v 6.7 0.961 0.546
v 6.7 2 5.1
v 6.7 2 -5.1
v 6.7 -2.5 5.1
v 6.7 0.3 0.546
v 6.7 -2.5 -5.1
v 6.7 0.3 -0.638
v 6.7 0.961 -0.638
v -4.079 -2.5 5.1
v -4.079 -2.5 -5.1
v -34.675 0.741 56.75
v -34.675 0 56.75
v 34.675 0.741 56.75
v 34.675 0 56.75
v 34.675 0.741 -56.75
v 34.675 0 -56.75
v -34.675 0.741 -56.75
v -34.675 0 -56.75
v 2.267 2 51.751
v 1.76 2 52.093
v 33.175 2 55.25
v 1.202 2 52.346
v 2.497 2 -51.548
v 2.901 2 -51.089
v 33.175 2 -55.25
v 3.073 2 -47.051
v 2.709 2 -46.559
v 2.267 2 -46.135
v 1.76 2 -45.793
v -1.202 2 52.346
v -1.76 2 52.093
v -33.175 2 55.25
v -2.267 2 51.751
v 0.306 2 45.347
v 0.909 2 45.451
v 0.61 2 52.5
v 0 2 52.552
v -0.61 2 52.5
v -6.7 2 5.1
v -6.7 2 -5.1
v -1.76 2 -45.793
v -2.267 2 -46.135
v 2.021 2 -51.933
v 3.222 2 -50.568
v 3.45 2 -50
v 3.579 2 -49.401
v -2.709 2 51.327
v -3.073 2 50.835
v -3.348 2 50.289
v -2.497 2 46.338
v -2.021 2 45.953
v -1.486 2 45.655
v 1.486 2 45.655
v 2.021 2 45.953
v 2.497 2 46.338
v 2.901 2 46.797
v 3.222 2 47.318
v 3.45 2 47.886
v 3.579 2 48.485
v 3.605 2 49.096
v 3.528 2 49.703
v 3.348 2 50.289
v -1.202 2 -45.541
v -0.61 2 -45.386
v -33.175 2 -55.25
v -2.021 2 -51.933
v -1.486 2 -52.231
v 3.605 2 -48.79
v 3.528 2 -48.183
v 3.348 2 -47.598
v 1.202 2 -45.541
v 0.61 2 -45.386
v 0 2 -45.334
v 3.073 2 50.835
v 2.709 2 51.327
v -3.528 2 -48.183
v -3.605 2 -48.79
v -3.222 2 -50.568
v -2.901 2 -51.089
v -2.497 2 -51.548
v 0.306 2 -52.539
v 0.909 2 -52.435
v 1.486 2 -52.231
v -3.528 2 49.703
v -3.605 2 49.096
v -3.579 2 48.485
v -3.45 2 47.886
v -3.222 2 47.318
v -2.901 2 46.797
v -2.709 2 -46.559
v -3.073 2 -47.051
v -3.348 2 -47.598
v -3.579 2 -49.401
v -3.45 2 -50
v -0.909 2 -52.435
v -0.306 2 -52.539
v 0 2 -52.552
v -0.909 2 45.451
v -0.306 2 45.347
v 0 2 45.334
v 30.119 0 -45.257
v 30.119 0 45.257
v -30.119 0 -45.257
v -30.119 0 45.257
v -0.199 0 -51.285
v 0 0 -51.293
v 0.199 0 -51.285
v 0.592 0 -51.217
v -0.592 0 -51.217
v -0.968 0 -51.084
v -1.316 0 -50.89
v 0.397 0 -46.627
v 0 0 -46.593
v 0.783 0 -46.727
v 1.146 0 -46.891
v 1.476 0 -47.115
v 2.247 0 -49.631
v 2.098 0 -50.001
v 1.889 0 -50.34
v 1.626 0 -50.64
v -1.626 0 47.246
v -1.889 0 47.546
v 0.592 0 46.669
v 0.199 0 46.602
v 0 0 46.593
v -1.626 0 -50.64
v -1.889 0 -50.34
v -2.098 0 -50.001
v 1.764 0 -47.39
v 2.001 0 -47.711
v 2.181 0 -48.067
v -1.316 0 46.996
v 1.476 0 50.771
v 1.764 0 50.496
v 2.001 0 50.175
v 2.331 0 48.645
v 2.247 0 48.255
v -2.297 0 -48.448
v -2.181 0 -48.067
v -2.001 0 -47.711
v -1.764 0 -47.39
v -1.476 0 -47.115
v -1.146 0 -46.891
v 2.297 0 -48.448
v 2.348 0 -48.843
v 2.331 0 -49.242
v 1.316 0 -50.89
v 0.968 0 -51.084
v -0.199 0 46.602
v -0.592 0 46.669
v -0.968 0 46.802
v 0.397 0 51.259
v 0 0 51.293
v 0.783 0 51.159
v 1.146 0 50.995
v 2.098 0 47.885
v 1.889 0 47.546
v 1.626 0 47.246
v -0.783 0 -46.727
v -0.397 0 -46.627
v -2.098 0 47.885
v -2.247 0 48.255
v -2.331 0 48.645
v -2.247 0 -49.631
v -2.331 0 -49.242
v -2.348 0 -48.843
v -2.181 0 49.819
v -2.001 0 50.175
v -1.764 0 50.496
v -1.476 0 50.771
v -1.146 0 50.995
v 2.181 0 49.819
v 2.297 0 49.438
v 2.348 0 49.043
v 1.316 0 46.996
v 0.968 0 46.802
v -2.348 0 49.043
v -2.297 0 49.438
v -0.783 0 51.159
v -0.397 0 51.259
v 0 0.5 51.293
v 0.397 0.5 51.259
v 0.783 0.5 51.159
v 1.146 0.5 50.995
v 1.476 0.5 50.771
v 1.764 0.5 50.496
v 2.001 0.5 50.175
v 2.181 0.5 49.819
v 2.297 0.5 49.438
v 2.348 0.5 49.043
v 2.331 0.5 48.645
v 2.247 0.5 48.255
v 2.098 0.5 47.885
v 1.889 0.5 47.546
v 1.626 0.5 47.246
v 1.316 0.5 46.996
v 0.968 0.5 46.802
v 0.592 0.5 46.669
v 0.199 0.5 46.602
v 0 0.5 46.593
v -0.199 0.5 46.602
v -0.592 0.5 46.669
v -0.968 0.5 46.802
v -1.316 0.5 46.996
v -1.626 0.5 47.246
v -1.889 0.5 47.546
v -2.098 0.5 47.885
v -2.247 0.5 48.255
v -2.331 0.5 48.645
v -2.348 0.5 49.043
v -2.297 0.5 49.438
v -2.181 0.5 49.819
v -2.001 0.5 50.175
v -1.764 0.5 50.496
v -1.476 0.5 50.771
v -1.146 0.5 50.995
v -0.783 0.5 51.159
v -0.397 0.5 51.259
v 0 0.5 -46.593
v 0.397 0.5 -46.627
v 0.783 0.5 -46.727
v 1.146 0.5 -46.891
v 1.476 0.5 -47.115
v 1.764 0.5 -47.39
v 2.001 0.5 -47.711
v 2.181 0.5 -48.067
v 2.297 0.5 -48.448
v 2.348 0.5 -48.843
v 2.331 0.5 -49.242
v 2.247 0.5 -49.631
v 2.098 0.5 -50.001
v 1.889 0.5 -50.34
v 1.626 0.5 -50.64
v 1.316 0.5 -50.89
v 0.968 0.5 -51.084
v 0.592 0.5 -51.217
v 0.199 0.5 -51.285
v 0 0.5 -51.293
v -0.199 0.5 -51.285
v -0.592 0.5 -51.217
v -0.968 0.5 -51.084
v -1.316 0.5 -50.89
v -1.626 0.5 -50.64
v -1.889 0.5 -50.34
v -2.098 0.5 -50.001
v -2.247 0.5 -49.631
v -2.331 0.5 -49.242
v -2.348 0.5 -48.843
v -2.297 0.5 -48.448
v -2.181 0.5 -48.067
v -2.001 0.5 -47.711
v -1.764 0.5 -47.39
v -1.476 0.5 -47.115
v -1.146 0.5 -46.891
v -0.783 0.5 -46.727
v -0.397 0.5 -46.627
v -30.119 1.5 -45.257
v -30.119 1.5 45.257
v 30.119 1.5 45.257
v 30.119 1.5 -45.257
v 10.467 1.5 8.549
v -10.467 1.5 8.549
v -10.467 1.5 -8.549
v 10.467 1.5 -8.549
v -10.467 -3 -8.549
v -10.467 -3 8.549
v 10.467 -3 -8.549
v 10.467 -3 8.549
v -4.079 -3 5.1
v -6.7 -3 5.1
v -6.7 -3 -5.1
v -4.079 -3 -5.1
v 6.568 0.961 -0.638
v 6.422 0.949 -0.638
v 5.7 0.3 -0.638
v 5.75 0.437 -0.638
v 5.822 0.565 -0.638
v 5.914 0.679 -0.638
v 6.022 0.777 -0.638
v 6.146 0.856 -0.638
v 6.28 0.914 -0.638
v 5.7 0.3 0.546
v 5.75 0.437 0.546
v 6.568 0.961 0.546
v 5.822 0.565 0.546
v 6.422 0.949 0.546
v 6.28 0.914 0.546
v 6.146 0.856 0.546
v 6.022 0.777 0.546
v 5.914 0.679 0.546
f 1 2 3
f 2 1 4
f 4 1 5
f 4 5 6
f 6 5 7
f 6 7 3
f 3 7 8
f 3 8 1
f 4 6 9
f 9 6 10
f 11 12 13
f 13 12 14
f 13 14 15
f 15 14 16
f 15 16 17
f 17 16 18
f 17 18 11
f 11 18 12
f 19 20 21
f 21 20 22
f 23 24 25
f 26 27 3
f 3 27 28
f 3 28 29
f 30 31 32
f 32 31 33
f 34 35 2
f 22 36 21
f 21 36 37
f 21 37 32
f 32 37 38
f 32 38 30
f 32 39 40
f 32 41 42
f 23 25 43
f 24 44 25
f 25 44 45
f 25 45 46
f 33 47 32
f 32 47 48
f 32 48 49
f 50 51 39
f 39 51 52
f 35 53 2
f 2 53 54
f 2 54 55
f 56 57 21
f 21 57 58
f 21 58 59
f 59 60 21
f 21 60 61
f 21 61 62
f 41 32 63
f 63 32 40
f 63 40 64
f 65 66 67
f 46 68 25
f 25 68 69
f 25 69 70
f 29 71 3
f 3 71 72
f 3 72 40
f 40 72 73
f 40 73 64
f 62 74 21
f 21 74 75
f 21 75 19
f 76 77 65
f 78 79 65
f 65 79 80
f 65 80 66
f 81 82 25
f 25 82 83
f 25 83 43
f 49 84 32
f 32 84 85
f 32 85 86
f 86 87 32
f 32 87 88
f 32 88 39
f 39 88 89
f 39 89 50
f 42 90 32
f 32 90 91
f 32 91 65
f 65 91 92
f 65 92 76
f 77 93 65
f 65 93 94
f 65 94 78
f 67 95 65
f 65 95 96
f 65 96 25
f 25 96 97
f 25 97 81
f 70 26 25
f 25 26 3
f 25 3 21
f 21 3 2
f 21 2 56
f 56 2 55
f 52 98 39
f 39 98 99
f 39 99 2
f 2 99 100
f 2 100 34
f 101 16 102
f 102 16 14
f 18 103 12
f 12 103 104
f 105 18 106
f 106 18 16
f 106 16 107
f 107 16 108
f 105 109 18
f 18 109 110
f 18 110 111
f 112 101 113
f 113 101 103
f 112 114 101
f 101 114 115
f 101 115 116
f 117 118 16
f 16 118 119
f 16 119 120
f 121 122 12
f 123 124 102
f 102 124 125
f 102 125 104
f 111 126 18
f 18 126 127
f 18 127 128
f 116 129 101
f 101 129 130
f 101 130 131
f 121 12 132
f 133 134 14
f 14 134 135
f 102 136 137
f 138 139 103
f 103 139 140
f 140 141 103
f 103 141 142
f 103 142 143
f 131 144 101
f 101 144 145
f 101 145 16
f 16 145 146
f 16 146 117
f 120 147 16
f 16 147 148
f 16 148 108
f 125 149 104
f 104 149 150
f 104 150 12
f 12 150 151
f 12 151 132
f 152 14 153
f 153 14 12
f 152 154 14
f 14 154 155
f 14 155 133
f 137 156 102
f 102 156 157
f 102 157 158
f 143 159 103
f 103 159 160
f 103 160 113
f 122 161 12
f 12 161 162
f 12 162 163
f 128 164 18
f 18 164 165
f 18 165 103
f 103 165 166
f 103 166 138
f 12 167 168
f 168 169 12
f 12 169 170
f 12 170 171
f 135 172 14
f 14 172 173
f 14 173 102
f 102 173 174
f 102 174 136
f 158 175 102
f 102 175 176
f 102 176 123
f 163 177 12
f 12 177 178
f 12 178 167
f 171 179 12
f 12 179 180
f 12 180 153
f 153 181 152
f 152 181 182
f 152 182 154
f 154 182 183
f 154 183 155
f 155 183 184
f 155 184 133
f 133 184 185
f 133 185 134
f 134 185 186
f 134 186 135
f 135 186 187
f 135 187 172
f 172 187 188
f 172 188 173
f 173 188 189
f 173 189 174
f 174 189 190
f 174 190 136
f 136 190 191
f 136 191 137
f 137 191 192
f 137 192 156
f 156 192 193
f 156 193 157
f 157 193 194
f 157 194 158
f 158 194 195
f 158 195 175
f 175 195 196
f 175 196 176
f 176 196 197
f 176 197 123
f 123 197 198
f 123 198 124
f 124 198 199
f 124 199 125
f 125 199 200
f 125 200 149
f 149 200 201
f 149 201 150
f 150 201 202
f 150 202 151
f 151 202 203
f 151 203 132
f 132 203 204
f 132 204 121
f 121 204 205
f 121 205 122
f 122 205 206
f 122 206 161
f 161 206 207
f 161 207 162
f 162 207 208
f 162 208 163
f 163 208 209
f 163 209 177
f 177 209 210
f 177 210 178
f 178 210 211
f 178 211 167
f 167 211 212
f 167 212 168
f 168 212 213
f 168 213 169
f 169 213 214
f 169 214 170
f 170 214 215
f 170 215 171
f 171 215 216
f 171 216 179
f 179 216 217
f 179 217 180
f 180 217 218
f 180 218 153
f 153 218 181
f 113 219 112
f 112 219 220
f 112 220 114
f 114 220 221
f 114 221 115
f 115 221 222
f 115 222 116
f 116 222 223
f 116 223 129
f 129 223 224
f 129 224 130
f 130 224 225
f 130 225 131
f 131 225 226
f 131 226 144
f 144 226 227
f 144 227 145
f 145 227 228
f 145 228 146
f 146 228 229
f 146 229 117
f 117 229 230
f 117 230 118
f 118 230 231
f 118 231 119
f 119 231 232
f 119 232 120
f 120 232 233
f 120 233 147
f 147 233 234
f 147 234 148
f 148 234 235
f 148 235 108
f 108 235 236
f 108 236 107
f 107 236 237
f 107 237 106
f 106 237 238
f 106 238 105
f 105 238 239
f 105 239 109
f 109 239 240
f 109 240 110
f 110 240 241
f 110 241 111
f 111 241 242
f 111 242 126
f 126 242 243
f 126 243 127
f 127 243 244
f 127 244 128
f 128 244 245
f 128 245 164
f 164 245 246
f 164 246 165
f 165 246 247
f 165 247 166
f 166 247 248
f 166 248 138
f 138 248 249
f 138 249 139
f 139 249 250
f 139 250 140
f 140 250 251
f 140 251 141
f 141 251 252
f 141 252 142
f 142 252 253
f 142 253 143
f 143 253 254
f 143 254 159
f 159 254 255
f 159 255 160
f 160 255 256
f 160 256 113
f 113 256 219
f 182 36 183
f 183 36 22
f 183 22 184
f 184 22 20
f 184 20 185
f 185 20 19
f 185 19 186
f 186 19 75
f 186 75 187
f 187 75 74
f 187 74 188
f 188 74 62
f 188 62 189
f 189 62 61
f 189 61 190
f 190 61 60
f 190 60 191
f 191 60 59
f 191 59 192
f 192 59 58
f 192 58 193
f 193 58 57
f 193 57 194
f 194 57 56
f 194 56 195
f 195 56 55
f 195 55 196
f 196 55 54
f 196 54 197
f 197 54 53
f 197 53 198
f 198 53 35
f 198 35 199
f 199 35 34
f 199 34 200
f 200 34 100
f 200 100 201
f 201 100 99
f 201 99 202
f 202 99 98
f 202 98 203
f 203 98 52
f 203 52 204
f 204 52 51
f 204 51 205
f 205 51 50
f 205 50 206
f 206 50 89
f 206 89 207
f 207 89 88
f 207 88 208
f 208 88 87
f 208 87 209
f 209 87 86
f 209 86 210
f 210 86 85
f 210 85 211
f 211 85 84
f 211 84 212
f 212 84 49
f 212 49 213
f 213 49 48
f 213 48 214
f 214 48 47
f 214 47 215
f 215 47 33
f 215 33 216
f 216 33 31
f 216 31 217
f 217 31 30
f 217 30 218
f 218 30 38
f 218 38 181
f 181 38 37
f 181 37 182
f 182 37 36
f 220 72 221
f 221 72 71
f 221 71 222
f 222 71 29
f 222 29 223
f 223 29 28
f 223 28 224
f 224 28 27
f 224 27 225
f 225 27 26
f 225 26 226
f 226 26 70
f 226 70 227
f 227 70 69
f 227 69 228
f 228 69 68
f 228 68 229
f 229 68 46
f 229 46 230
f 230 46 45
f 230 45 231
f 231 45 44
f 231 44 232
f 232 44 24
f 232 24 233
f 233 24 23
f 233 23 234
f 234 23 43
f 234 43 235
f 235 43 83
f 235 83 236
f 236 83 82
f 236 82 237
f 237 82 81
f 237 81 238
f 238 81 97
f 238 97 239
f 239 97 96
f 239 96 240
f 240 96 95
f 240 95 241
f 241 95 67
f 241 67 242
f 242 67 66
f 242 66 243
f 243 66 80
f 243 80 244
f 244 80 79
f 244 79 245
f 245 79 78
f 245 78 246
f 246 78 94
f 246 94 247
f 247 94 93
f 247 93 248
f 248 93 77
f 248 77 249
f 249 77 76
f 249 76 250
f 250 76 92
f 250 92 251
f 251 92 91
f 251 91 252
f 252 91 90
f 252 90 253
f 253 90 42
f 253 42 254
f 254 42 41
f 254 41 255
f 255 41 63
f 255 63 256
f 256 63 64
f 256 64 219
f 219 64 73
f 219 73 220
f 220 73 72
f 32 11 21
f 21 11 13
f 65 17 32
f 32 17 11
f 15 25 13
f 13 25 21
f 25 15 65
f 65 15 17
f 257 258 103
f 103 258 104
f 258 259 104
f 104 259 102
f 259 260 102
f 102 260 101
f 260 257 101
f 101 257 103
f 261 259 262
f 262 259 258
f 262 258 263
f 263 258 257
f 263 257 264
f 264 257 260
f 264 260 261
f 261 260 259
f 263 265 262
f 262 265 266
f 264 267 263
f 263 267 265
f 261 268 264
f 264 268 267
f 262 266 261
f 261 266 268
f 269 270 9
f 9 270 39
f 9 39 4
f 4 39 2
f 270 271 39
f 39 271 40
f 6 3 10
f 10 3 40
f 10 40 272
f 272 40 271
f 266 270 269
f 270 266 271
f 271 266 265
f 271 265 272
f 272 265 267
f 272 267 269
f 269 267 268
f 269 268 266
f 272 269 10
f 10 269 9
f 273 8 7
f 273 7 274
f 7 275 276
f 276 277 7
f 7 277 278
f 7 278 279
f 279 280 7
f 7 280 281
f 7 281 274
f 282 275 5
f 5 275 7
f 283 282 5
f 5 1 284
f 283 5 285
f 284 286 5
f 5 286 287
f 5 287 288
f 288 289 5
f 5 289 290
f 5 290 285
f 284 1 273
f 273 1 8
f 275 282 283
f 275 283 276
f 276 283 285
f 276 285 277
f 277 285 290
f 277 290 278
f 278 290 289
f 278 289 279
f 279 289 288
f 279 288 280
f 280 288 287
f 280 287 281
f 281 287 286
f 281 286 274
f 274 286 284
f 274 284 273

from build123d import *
from OCP.BRepFilletAPI import BRepFilletAPI_MakeChamfer

# Parameters (mm, degrees)
SKETCH1_W            = 69.35
SKETCH1_H            = 113.5
BOSS_EXTRUDE5_DEPTH  = 2
SKETCH2_R            = 2.35
CUT_EXTRUDE3_DEPTH   = 2.5
FACE_CHAMFER_SIZE    = 1.5
FACE_CHAMFER_SIZE2   = 1.258649447
SKETCH4_W            = 60.238416088
SKETCH4_H            = 90.514495008
CUT_EXTRUDE6_DEPTH   = 1.5
SKETCH5_W            = 20.93325514
SKETCH5_H            = 17.0989254
SKETCH5_W_2          = 13.4
SKETCH5_H_2          = 10.2
BOSS_EXTRUDE7_DEPTH  = 4.5
SKETCH6_W            = 13.4
SKETCH6_H            = 10.2
CUT_EXTRUDE7_DEPTH   = 4.1
SKETCH7_W            = 20.93325514
SKETCH7_H            = 17.0989254
BOSS_EXTRUDE8_DEPTH  = 0.5
SKETCH8_W            = 2.621357244
SKETCH8_H            = 10.2
CUT_EXTRUDE8_DEPTH   = 0.5
SKETCH10_W           = 1.18316995
SKETCH10_H           = 0.660821766
BOSS_EXTRUDE11_DEPTH = 1
FILLET1_R            = 0.9


with BuildPart() as part:
    # Sketch1 → Boss-Extrude5 (new body)
    with BuildSketch(Plane(origin=(0, 0, 0), x_dir=(1, 0, 0), z_dir=(0, 1, 0))):
        Rectangle(SKETCH1_W, SKETCH1_H)
    extrude(amount=BOSS_EXTRUDE5_DEPTH)

    # Sketch2 → Cut-Extrude3 (cut)
    with BuildSketch(Plane(origin=(0, 2, 0), x_dir=(1, 0, 0), z_dir=(0, 1, 0))):
        with Locations(Location((0, 48.943079059, 0), (0, 0, 270))):
            Circle(SKETCH2_R)
        with Locations(Location((0, -48.943079059, 0), (0, 0, 90))):
            Circle(SKETCH2_R)
    extrude(amount=-CUT_EXTRUDE3_DEPTH, mode=Mode.SUBTRACT)

    # face chamfer: one chamfer whose edges measure the first distance from different faces: ONE call of the kernel's chamfer builder (chamfer() names one face for all edges)
    face_chamfer_edges_1 = [part.edges().sort_by_distance(p)[0] for p in [
        (0, 2, -56.75),
        (-34.675, 2, 0),
        (0, 2, 56.75),
        (34.675, 2, 0),
    ]]
    face_chamfer_side_1 = [part.faces().sort_by_distance(p)[0] for p in [
        (0, 2, 0),
    ]]
    face_chamfer_edges_2 = [part.edges().sort_by_distance(p)[0] for p in [
        (0, 2, -51.293079059),
    ]]
    face_chamfer_side_2 = [part.faces().sort_by_distance(p)[0] for p in [
        (0, 1, -51.293079059),
    ]]
    face_chamfer_edges_3 = [part.edges().sort_by_distance(p)[0] for p in [
        (0, 2, 51.293079059),
    ]]
    face_chamfer_side_3 = [part.faces().sort_by_distance(p)[0] for p in [
        (0, 1, 51.293079059),
    ]]
    face_chamfer = BRepFilletAPI_MakeChamfer(part.part.solid().wrapped)
    for e in face_chamfer_edges_1:
        face_chamfer.Add(FACE_CHAMFER_SIZE, FACE_CHAMFER_SIZE2, e.wrapped, face_chamfer_side_1[0].wrapped)  # the first distance lies on this face
    for e in face_chamfer_edges_2:
        face_chamfer.Add(FACE_CHAMFER_SIZE, FACE_CHAMFER_SIZE2, e.wrapped, face_chamfer_side_2[0].wrapped)  # the first distance lies on this face
    for e in face_chamfer_edges_3:
        face_chamfer.Add(FACE_CHAMFER_SIZE, FACE_CHAMFER_SIZE2, e.wrapped, face_chamfer_side_3[0].wrapped)  # the first distance lies on this face
    add(Compound.cast(face_chamfer.Shape()), mode=Mode.REPLACE)

    # Sketch4 → Cut-Extrude6 (cut)
    with BuildSketch(Plane(origin=(0, 0, 0), x_dir=(-1, 0, 0), z_dir=(0, -1, 0))):
        Rectangle(SKETCH4_W, SKETCH4_H)
    extrude(amount=-CUT_EXTRUDE6_DEPTH, mode=Mode.SUBTRACT)

    # Sketch5 → Boss-Extrude7 (add)
    with BuildSketch(Plane(origin=(0, 2, 0), x_dir=(1, 0, 0), z_dir=(0, 1, 0))):
        Rectangle(SKETCH5_W, SKETCH5_H)
        Rectangle(SKETCH5_W_2, SKETCH5_H_2, mode=Mode.SUBTRACT)
    extrude(amount=-BOSS_EXTRUDE7_DEPTH)

    # Sketch6 → Cut-Extrude7 (cut)
    with BuildSketch(Plane(origin=(0, 2, 0), x_dir=(1, 0, 0), z_dir=(0, 1, 0))):
        Rectangle(SKETCH6_W, SKETCH6_H)
    extrude(amount=-CUT_EXTRUDE7_DEPTH, mode=Mode.SUBTRACT)

    # Sketch7 → Boss-Extrude8 (add)
    with BuildSketch(Plane.XZ.offset(2.5)):
        Rectangle(SKETCH7_W, SKETCH7_H)
    extrude(amount=BOSS_EXTRUDE8_DEPTH)

    # Sketch8 → Cut-Extrude8 (cut)
    with BuildSketch(Plane(origin=(0, -2.5, 0), x_dir=(1, 0, 0), z_dir=(0, 1, 0))):
        with Locations((-5.389321378, 0)):
            Rectangle(SKETCH8_W, SKETCH8_H)
    extrude(amount=-CUT_EXTRUDE8_DEPTH, mode=Mode.SUBTRACT)

    # Sketch10 → Boss-Extrude11 (add)
    with BuildSketch(Plane.ZY.offset(-6.7)):
        with Locations((-0.045919003, 0.630410883)):
            Rectangle(SKETCH10_W, SKETCH10_H)
    extrude(amount=BOSS_EXTRUDE11_DEPTH)

    # Fillet1
    # the kernel refuses this fillet: 0.9 mm, written as the material it takes off along each edge
    with BuildSketch(Plane(origin=(5.7, 0.960821766, 2.714758197), x_dir=(1, 0, 0), z_dir=(0, 0, -1))) as fillet1_piece_1:
        with BuildLine():
            CenterArc((0.86763689, 0.9), FILLET1_R, 195.411736224, 74.588263776)
            Line((0, 0.660821766), (-0.017352738, 0.656038202))
            ThreePointArc((-0.017352738, 0.656038202), (-0.018, 0.330410883), (-0.018, 0))
            Line((-0.018, 0), (0, -0.018))
            Line((0, -0.018), (0.86763689, -0.018))
            Line((0.86763689, -0.018), (0.86763689, 0))
        make_face()
    extrude(amount=5.521354399, mode=Mode.SUBTRACT)


solid = part.part
